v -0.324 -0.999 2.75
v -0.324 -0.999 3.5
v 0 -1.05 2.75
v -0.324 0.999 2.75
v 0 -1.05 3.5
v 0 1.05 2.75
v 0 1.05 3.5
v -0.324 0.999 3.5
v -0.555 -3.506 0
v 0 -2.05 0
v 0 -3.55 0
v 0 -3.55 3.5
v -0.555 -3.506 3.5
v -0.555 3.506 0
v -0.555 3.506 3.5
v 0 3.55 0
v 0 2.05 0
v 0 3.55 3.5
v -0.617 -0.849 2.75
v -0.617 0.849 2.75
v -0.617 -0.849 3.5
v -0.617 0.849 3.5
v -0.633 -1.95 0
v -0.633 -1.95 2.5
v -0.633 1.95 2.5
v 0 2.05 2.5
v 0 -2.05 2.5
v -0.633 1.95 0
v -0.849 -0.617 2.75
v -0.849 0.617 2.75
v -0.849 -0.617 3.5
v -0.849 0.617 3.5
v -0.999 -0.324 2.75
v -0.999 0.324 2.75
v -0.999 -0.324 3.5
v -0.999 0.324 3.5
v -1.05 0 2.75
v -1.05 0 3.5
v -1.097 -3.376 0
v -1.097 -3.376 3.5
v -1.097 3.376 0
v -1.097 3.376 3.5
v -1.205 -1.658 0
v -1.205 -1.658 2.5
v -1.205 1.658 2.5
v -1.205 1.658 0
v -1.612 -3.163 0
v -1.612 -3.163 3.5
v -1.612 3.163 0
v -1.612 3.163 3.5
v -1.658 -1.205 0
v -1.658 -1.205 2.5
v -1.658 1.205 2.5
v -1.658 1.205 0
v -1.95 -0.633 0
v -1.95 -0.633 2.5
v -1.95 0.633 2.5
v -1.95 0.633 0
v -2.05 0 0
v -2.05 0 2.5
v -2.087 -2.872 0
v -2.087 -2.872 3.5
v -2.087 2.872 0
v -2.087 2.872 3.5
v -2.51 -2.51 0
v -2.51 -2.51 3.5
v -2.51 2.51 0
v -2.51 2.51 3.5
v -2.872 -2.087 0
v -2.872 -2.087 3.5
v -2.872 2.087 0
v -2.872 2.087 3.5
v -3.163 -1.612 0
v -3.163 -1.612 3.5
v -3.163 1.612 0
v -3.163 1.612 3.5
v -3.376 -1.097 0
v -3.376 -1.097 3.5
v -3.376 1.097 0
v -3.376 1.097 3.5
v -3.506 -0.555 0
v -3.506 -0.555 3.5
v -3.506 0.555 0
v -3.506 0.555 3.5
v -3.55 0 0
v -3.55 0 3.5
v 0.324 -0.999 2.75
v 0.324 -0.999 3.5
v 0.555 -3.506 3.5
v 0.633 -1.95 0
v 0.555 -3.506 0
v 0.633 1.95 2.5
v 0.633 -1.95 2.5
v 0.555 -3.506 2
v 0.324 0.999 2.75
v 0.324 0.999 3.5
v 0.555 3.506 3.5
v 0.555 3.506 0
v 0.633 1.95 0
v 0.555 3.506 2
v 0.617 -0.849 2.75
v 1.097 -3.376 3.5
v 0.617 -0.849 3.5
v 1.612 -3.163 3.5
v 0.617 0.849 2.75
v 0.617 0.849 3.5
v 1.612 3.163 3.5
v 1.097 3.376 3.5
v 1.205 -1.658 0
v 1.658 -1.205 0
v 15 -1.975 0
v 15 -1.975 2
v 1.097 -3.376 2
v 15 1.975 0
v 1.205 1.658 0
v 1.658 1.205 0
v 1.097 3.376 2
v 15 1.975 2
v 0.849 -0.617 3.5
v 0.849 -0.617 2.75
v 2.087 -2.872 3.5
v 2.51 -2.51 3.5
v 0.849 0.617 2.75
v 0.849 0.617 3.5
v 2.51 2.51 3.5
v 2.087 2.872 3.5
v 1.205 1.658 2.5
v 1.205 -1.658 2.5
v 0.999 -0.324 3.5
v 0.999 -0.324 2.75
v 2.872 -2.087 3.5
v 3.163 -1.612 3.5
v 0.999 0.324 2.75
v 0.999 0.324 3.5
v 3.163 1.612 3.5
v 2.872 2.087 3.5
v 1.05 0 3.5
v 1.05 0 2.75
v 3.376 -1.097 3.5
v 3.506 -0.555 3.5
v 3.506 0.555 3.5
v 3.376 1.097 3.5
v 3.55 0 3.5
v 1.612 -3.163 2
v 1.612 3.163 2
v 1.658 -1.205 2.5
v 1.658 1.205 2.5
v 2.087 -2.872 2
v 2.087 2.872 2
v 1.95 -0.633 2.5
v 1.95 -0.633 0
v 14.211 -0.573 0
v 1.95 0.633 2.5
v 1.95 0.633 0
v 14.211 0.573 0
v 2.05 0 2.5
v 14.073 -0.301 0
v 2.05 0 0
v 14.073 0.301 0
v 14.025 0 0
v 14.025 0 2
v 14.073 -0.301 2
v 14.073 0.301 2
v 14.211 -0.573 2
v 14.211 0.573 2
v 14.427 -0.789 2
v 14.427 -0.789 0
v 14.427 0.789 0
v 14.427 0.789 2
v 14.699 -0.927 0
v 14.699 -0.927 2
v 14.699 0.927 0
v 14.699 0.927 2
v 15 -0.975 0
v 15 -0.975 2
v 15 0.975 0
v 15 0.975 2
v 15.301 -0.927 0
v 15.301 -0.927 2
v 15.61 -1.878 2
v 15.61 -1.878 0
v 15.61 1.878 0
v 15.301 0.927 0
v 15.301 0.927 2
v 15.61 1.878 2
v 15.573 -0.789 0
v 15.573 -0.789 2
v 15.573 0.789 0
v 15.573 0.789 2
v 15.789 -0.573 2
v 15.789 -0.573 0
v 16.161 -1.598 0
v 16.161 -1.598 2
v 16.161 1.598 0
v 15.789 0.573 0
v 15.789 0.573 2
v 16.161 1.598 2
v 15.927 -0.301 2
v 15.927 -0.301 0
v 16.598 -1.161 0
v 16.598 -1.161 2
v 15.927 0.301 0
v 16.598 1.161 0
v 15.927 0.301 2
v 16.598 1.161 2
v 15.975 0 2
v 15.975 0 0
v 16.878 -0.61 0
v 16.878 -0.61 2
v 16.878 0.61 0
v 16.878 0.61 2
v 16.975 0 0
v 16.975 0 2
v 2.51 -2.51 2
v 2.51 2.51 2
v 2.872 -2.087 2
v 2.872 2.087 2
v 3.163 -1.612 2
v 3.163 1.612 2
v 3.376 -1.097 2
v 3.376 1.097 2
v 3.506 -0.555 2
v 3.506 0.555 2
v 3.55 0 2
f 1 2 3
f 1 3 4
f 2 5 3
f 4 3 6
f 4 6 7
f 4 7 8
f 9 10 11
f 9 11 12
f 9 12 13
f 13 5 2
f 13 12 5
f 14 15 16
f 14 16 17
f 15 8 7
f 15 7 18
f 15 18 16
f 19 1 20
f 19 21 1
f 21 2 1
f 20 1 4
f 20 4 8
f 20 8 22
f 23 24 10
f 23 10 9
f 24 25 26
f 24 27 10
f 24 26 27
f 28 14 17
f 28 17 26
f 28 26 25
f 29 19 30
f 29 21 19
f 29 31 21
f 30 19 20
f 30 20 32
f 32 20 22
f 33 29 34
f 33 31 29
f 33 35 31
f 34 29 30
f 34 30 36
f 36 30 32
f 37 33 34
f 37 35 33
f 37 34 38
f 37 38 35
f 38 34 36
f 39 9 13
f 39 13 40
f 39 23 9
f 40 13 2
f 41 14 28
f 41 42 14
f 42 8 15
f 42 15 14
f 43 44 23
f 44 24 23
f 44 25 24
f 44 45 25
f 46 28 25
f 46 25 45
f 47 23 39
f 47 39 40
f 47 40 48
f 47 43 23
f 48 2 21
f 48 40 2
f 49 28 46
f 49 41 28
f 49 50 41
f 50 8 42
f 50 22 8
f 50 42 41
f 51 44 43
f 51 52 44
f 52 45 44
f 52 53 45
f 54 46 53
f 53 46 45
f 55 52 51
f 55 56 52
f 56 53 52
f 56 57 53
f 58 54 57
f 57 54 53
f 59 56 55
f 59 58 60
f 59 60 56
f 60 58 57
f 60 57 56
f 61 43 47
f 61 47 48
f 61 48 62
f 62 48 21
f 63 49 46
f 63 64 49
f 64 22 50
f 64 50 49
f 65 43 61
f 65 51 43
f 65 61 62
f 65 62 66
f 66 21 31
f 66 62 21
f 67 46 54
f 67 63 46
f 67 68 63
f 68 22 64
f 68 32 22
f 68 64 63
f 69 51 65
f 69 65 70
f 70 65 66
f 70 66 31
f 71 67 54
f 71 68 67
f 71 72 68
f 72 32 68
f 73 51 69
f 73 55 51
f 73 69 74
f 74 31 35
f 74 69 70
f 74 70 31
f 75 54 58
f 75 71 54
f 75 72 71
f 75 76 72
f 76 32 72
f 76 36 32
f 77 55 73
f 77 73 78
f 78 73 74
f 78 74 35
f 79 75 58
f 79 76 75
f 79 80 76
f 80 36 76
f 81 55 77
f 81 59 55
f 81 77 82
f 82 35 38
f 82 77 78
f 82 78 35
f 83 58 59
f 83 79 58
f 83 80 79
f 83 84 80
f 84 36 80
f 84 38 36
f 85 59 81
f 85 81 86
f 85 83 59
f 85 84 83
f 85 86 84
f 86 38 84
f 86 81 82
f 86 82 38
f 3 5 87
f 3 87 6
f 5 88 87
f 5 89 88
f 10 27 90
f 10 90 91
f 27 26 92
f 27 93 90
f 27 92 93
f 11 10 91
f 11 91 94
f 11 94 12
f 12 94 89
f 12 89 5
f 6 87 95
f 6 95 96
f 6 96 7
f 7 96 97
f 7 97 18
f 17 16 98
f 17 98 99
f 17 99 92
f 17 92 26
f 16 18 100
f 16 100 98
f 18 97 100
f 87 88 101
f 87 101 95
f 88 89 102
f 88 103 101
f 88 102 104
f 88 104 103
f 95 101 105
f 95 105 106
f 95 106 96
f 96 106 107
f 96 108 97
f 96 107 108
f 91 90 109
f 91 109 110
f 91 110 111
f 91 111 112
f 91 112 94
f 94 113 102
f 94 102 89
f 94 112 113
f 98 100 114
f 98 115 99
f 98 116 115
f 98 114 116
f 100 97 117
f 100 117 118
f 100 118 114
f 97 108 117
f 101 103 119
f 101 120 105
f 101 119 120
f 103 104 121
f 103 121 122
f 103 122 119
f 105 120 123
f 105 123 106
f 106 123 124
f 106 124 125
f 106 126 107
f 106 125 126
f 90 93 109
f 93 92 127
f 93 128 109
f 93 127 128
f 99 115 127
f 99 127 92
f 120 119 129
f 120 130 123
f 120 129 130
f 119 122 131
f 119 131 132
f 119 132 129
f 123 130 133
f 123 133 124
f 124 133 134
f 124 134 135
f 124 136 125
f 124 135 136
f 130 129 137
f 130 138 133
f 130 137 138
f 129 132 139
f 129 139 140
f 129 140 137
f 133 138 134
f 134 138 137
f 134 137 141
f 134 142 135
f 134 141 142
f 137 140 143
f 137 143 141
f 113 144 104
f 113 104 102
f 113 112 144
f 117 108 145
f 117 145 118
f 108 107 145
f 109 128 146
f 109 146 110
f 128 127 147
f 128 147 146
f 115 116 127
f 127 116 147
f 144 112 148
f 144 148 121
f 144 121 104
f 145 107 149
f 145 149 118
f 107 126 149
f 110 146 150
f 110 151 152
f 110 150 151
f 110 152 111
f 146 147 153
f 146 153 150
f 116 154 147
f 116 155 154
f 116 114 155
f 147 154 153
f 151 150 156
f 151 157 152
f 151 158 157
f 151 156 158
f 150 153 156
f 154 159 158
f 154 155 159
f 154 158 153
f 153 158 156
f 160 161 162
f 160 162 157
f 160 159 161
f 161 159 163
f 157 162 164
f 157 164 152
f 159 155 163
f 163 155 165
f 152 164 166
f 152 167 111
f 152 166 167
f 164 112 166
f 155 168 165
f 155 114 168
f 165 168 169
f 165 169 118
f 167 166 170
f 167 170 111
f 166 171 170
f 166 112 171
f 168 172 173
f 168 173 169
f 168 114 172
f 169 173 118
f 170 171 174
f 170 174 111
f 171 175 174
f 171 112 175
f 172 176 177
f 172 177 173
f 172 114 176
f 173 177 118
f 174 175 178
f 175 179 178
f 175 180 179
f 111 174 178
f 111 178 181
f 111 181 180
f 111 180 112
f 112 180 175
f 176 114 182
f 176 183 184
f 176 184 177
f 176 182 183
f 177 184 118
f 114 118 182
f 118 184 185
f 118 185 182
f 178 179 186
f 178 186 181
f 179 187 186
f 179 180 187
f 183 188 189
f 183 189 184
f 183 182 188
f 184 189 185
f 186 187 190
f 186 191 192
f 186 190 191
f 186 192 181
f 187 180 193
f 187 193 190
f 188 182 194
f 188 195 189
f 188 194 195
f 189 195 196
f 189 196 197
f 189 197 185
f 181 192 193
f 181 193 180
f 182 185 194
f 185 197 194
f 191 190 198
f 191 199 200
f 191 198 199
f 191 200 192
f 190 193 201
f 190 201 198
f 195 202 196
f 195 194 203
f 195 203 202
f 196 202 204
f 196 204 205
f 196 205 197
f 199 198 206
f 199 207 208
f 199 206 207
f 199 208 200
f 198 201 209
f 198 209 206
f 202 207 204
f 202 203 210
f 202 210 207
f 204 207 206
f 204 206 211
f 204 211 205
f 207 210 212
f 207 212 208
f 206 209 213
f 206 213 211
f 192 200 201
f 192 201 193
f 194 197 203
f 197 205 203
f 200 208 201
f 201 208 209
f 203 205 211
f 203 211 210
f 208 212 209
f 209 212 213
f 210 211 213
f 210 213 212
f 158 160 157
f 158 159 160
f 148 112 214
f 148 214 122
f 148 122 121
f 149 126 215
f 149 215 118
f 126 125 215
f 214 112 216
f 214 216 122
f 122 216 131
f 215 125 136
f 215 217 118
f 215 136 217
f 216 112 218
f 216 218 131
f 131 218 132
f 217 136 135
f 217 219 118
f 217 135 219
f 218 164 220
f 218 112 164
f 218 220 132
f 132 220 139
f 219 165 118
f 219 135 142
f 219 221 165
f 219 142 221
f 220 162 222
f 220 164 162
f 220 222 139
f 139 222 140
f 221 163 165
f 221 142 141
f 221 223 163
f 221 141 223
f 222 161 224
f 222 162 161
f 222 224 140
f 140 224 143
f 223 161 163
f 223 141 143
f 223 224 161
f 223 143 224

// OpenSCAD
// file: ../parameters.scad
maximum_printable_size = 150;

//Tube for undercarriage - rendered hole [mm]
tube_for_undercarriage_outer_diameter = 10.6;
tube_for_undercarriage_inner_diameter = 6;
layer_thickness = 0.3;
global_clearance = 0.5;

// screw length step - minimum difference in length between two types of screws
basic_screw_length = 5;


//Screw diameter and nut for M10 [mm]
M10_screw_diameter=10.4;
M10_head_height = 10;
M10_head_diameter = 16+0.5;
M10_nut_height = 10.5;
M10_nut_diameter = 25.5;
M10_nut_pocket = 22.3;

//Screw diameter for M8 [mm]
M8_screw_diameter = 8.6;
M8_head_height = 8;
M8_head_diameter = 13.5;
M8_nut_height = 7.5;
M8_nut_diameter = 14.4 + 0.5;
M8_nut_pocket = 13 + 0.5;

//Screw diameter and nut for M6 [mm]
M6_screw_diameter=6.5;
M6_head_diameter = 10+0.5;
M6_head_height = 6;
M6_nut_height = 4.9;
M6_nut_diameter = 11.8;
M6_nut_pocket = 10.4;
M6_square_nut_height = 3;
M6_square_nut_diameter = 10;

//Screw diameter and nut for M5 [mm]
M5_screw_diameter=5.5;
M5_head_height = 5;
M5_head_diameter = 13+0.5;
M5_nut_height = 4.5;
M5_nut_diameter = 9.4;
M5_nut_pocket = 8.4;

//Screw diameter and nut for M4 [mm]
M4_screw_diameter=4.5;
M4_screw_head_height = 4;
M4_nut_height = 3.2;
M4_nut_diameter = 8.4;
M4_nut_pocket = 7.5;

//Screw diameter and nut for M3 [mm]
M3_screw_diameter = 3.2;
M3_nut_height = 2.7;
M3_nut_diameter = 6.6;
M3_screw_head_height = 3;

//Screw diameter and nut for M2,5 [mm]
M2_5_screw_diameter = 2.7;
M2_5_nut_height = 2.3;
M2_5_nut_diameter = 6;
M2_5_nut_pocket = 5.5;

// kulove lozisko

bearing_efsm_08_h = 33+1;
bearing_efsm_08_m = 22;
bearing_efsm_08_db = 18;
bearing_efsm_08_ag = 10.5;
bearing_efsm_08_n = M4_screw_diameter;
bearing_efsm_08_a1 = 5.5;
bearing_efsm_08_d = 8.25;
bearing_efsm_08_B = 8; // ball height

bearing_efsm_10_h = 38+1;
bearing_efsm_10_m = 26;
bearing_efsm_10_db = 21.9;
bearing_efsm_10_ag = 12+0.2;
bearing_efsm_10_n = M5_screw_diameter;
bearing_efsm_10_a1 = 6.5;
bearing_efsm_10_d = 10.25;


bearing_efsm_12_width = 40+1;
bearing_efsm_12_h = bearing_efsm_12_width;
bearing_efsm_12_boltd = 28/2; // polovina vzdalenosti mezi srouby
bearing_efsm_12_m = bearing_efsm_12_boltd*2;
bearing_efsm_12_db = 25;
bearing_efsm_12_ag = 13;
bearing_efsm_12_a1 = 7;
bearing_efsm_12_n = M5_screw_diameter;
bearing_efsm_12_d = 12.15;
bearing_efsm_12_B = 10; // ball height
bearing_efsm_space = 1;

bearing_efsm_17_width = 54+1;
bearing_efsm_17_h = bearing_efsm_17_width;
bearing_efsm_17_boltd = 38/2; // polovina vzdalenosti mezi srouby
bearing_efsm_17_m = bearing_efsm_17_boltd*2;
bearing_efsm_17_db = 35;
bearing_efsm_17_ag = 18;
bearing_efsm_17_n = M6_screw_diameter;
bearing_efsm_17_a1 = 10;
bearing_efsm_17_B = 17; // ball height

//limcove lozisko
bearing_EFOM_10_L=26; //celkova sirka zakladny
bearing_EFOM_10_d1=10.3;//diametr otvoru real=10 mm
bearing_EFOM_10_dB=22;//diametr vystupku pro ulozeni lozika
bearing_EFOM_10_H=52;//celková delka zakladny
bearing_EFOM_10_J=36;// hole pitch
bearing_EFOM_10_A1=6.5;//vyska pouzdra
bearing_EFOM_10_Ag=12;//celkova vyska
bearing_EFOM_10_N1=5;//sirka otvoru pro sroub
bearing_EFOM_10_N2=8;//delka otvoru pro sroub
bearing_EFOM_10_m=36;//roztec der pro sroub
bearing_EFOM_10_h=9;//vyska lozika

// 20 KG servo parameters


servo_20kg_axis_offset = 9.375; // jak je osa mimo stredu
servo_20kg_body_x = 42;
servo_20kg_body_y = 21;
servo_20kg_body_z = 40;
servo_20kg_thread_x = 49/2;
servo_20kg_thread_y = 10/2;
servo_20kg_body_below = 10; // jak hluboko je tělo serva pod drzaky na srouby
servo_20kg_below = 25.8; // jak hluboko je páka serva pod drzaky na srouby

servo_20kg_bolt_d = 2.5+0.3;
servo_20kg_nut_d = 5+0.3;


//strain gauge
strain_gauge_width = 12.7;
strain_gauge_length = 75.1;
strain_gauge_screw_distance = 10;

//ALU profile
ALU_profile_width = 30.3;
ALU_profile_holder_wall_thickness = 3;
ALU_profile_groove_width = 8;

//pillow block bearing
//https://www.igus.eu/product/372
//Part no. KSTM-08
KSTM08_screws_distance = 33;         //m
KSTM08_screws_holes_diameter = 4.5;  //d2
KSTM08_flange_thickness = 6;         //h3
KSTM08_case_width = 9;               //C1
KSTM08_case_length = 47;             //a
KSTM08_ball_width = 12;              //B


//ložiska pro malý rotor
bearing_outer_diameter = 10.2;    // Rozměr B1 v nákresu s přídavkem na toleranci otvoru
bearing_thickness = 4;        // Rozměr B2 v nákresu
//bearing_shaft_length = 19.5;    // Rozměr B3 v nákresu, Originalni hodnota 19.5
bearing_shaft_length = 20;    // Rozměr B3 v nákresu

//servo lever
servo_lever_length = 15;
servo_gear_diameter = 4.1;
servo_gear_height = 2.5;
lever_hole_diameter = 1.95;
lever_thickness = 2;
// main file
include <../parameters.scad>

module servo_lever() {
    difference() {
        union() {
            hull() {
                cylinder(d=servo_gear_diameter+3, h=lever_thickness, $fn=40);
                translate([servo_lever_length, 0, 0])
                    cylinder(d=lever_hole_diameter+2, h=lever_thickness, $fn=20);
            }
            cylinder(d=servo_gear_diameter+3, h=servo_gear_height+1, $fn=40);
        }

        cylinder(d=servo_gear_diameter, h=servo_gear_height, $fn=20);

        translate([servo_lever_length, 0, 0])
            cylinder(d=lever_hole_diameter, h=10, $fn=20);

        translate([0, 0, servo_gear_height+0.25])
            cylinder(d=2.1, h=10, $fn=20);
    }
}

servo_lever();
